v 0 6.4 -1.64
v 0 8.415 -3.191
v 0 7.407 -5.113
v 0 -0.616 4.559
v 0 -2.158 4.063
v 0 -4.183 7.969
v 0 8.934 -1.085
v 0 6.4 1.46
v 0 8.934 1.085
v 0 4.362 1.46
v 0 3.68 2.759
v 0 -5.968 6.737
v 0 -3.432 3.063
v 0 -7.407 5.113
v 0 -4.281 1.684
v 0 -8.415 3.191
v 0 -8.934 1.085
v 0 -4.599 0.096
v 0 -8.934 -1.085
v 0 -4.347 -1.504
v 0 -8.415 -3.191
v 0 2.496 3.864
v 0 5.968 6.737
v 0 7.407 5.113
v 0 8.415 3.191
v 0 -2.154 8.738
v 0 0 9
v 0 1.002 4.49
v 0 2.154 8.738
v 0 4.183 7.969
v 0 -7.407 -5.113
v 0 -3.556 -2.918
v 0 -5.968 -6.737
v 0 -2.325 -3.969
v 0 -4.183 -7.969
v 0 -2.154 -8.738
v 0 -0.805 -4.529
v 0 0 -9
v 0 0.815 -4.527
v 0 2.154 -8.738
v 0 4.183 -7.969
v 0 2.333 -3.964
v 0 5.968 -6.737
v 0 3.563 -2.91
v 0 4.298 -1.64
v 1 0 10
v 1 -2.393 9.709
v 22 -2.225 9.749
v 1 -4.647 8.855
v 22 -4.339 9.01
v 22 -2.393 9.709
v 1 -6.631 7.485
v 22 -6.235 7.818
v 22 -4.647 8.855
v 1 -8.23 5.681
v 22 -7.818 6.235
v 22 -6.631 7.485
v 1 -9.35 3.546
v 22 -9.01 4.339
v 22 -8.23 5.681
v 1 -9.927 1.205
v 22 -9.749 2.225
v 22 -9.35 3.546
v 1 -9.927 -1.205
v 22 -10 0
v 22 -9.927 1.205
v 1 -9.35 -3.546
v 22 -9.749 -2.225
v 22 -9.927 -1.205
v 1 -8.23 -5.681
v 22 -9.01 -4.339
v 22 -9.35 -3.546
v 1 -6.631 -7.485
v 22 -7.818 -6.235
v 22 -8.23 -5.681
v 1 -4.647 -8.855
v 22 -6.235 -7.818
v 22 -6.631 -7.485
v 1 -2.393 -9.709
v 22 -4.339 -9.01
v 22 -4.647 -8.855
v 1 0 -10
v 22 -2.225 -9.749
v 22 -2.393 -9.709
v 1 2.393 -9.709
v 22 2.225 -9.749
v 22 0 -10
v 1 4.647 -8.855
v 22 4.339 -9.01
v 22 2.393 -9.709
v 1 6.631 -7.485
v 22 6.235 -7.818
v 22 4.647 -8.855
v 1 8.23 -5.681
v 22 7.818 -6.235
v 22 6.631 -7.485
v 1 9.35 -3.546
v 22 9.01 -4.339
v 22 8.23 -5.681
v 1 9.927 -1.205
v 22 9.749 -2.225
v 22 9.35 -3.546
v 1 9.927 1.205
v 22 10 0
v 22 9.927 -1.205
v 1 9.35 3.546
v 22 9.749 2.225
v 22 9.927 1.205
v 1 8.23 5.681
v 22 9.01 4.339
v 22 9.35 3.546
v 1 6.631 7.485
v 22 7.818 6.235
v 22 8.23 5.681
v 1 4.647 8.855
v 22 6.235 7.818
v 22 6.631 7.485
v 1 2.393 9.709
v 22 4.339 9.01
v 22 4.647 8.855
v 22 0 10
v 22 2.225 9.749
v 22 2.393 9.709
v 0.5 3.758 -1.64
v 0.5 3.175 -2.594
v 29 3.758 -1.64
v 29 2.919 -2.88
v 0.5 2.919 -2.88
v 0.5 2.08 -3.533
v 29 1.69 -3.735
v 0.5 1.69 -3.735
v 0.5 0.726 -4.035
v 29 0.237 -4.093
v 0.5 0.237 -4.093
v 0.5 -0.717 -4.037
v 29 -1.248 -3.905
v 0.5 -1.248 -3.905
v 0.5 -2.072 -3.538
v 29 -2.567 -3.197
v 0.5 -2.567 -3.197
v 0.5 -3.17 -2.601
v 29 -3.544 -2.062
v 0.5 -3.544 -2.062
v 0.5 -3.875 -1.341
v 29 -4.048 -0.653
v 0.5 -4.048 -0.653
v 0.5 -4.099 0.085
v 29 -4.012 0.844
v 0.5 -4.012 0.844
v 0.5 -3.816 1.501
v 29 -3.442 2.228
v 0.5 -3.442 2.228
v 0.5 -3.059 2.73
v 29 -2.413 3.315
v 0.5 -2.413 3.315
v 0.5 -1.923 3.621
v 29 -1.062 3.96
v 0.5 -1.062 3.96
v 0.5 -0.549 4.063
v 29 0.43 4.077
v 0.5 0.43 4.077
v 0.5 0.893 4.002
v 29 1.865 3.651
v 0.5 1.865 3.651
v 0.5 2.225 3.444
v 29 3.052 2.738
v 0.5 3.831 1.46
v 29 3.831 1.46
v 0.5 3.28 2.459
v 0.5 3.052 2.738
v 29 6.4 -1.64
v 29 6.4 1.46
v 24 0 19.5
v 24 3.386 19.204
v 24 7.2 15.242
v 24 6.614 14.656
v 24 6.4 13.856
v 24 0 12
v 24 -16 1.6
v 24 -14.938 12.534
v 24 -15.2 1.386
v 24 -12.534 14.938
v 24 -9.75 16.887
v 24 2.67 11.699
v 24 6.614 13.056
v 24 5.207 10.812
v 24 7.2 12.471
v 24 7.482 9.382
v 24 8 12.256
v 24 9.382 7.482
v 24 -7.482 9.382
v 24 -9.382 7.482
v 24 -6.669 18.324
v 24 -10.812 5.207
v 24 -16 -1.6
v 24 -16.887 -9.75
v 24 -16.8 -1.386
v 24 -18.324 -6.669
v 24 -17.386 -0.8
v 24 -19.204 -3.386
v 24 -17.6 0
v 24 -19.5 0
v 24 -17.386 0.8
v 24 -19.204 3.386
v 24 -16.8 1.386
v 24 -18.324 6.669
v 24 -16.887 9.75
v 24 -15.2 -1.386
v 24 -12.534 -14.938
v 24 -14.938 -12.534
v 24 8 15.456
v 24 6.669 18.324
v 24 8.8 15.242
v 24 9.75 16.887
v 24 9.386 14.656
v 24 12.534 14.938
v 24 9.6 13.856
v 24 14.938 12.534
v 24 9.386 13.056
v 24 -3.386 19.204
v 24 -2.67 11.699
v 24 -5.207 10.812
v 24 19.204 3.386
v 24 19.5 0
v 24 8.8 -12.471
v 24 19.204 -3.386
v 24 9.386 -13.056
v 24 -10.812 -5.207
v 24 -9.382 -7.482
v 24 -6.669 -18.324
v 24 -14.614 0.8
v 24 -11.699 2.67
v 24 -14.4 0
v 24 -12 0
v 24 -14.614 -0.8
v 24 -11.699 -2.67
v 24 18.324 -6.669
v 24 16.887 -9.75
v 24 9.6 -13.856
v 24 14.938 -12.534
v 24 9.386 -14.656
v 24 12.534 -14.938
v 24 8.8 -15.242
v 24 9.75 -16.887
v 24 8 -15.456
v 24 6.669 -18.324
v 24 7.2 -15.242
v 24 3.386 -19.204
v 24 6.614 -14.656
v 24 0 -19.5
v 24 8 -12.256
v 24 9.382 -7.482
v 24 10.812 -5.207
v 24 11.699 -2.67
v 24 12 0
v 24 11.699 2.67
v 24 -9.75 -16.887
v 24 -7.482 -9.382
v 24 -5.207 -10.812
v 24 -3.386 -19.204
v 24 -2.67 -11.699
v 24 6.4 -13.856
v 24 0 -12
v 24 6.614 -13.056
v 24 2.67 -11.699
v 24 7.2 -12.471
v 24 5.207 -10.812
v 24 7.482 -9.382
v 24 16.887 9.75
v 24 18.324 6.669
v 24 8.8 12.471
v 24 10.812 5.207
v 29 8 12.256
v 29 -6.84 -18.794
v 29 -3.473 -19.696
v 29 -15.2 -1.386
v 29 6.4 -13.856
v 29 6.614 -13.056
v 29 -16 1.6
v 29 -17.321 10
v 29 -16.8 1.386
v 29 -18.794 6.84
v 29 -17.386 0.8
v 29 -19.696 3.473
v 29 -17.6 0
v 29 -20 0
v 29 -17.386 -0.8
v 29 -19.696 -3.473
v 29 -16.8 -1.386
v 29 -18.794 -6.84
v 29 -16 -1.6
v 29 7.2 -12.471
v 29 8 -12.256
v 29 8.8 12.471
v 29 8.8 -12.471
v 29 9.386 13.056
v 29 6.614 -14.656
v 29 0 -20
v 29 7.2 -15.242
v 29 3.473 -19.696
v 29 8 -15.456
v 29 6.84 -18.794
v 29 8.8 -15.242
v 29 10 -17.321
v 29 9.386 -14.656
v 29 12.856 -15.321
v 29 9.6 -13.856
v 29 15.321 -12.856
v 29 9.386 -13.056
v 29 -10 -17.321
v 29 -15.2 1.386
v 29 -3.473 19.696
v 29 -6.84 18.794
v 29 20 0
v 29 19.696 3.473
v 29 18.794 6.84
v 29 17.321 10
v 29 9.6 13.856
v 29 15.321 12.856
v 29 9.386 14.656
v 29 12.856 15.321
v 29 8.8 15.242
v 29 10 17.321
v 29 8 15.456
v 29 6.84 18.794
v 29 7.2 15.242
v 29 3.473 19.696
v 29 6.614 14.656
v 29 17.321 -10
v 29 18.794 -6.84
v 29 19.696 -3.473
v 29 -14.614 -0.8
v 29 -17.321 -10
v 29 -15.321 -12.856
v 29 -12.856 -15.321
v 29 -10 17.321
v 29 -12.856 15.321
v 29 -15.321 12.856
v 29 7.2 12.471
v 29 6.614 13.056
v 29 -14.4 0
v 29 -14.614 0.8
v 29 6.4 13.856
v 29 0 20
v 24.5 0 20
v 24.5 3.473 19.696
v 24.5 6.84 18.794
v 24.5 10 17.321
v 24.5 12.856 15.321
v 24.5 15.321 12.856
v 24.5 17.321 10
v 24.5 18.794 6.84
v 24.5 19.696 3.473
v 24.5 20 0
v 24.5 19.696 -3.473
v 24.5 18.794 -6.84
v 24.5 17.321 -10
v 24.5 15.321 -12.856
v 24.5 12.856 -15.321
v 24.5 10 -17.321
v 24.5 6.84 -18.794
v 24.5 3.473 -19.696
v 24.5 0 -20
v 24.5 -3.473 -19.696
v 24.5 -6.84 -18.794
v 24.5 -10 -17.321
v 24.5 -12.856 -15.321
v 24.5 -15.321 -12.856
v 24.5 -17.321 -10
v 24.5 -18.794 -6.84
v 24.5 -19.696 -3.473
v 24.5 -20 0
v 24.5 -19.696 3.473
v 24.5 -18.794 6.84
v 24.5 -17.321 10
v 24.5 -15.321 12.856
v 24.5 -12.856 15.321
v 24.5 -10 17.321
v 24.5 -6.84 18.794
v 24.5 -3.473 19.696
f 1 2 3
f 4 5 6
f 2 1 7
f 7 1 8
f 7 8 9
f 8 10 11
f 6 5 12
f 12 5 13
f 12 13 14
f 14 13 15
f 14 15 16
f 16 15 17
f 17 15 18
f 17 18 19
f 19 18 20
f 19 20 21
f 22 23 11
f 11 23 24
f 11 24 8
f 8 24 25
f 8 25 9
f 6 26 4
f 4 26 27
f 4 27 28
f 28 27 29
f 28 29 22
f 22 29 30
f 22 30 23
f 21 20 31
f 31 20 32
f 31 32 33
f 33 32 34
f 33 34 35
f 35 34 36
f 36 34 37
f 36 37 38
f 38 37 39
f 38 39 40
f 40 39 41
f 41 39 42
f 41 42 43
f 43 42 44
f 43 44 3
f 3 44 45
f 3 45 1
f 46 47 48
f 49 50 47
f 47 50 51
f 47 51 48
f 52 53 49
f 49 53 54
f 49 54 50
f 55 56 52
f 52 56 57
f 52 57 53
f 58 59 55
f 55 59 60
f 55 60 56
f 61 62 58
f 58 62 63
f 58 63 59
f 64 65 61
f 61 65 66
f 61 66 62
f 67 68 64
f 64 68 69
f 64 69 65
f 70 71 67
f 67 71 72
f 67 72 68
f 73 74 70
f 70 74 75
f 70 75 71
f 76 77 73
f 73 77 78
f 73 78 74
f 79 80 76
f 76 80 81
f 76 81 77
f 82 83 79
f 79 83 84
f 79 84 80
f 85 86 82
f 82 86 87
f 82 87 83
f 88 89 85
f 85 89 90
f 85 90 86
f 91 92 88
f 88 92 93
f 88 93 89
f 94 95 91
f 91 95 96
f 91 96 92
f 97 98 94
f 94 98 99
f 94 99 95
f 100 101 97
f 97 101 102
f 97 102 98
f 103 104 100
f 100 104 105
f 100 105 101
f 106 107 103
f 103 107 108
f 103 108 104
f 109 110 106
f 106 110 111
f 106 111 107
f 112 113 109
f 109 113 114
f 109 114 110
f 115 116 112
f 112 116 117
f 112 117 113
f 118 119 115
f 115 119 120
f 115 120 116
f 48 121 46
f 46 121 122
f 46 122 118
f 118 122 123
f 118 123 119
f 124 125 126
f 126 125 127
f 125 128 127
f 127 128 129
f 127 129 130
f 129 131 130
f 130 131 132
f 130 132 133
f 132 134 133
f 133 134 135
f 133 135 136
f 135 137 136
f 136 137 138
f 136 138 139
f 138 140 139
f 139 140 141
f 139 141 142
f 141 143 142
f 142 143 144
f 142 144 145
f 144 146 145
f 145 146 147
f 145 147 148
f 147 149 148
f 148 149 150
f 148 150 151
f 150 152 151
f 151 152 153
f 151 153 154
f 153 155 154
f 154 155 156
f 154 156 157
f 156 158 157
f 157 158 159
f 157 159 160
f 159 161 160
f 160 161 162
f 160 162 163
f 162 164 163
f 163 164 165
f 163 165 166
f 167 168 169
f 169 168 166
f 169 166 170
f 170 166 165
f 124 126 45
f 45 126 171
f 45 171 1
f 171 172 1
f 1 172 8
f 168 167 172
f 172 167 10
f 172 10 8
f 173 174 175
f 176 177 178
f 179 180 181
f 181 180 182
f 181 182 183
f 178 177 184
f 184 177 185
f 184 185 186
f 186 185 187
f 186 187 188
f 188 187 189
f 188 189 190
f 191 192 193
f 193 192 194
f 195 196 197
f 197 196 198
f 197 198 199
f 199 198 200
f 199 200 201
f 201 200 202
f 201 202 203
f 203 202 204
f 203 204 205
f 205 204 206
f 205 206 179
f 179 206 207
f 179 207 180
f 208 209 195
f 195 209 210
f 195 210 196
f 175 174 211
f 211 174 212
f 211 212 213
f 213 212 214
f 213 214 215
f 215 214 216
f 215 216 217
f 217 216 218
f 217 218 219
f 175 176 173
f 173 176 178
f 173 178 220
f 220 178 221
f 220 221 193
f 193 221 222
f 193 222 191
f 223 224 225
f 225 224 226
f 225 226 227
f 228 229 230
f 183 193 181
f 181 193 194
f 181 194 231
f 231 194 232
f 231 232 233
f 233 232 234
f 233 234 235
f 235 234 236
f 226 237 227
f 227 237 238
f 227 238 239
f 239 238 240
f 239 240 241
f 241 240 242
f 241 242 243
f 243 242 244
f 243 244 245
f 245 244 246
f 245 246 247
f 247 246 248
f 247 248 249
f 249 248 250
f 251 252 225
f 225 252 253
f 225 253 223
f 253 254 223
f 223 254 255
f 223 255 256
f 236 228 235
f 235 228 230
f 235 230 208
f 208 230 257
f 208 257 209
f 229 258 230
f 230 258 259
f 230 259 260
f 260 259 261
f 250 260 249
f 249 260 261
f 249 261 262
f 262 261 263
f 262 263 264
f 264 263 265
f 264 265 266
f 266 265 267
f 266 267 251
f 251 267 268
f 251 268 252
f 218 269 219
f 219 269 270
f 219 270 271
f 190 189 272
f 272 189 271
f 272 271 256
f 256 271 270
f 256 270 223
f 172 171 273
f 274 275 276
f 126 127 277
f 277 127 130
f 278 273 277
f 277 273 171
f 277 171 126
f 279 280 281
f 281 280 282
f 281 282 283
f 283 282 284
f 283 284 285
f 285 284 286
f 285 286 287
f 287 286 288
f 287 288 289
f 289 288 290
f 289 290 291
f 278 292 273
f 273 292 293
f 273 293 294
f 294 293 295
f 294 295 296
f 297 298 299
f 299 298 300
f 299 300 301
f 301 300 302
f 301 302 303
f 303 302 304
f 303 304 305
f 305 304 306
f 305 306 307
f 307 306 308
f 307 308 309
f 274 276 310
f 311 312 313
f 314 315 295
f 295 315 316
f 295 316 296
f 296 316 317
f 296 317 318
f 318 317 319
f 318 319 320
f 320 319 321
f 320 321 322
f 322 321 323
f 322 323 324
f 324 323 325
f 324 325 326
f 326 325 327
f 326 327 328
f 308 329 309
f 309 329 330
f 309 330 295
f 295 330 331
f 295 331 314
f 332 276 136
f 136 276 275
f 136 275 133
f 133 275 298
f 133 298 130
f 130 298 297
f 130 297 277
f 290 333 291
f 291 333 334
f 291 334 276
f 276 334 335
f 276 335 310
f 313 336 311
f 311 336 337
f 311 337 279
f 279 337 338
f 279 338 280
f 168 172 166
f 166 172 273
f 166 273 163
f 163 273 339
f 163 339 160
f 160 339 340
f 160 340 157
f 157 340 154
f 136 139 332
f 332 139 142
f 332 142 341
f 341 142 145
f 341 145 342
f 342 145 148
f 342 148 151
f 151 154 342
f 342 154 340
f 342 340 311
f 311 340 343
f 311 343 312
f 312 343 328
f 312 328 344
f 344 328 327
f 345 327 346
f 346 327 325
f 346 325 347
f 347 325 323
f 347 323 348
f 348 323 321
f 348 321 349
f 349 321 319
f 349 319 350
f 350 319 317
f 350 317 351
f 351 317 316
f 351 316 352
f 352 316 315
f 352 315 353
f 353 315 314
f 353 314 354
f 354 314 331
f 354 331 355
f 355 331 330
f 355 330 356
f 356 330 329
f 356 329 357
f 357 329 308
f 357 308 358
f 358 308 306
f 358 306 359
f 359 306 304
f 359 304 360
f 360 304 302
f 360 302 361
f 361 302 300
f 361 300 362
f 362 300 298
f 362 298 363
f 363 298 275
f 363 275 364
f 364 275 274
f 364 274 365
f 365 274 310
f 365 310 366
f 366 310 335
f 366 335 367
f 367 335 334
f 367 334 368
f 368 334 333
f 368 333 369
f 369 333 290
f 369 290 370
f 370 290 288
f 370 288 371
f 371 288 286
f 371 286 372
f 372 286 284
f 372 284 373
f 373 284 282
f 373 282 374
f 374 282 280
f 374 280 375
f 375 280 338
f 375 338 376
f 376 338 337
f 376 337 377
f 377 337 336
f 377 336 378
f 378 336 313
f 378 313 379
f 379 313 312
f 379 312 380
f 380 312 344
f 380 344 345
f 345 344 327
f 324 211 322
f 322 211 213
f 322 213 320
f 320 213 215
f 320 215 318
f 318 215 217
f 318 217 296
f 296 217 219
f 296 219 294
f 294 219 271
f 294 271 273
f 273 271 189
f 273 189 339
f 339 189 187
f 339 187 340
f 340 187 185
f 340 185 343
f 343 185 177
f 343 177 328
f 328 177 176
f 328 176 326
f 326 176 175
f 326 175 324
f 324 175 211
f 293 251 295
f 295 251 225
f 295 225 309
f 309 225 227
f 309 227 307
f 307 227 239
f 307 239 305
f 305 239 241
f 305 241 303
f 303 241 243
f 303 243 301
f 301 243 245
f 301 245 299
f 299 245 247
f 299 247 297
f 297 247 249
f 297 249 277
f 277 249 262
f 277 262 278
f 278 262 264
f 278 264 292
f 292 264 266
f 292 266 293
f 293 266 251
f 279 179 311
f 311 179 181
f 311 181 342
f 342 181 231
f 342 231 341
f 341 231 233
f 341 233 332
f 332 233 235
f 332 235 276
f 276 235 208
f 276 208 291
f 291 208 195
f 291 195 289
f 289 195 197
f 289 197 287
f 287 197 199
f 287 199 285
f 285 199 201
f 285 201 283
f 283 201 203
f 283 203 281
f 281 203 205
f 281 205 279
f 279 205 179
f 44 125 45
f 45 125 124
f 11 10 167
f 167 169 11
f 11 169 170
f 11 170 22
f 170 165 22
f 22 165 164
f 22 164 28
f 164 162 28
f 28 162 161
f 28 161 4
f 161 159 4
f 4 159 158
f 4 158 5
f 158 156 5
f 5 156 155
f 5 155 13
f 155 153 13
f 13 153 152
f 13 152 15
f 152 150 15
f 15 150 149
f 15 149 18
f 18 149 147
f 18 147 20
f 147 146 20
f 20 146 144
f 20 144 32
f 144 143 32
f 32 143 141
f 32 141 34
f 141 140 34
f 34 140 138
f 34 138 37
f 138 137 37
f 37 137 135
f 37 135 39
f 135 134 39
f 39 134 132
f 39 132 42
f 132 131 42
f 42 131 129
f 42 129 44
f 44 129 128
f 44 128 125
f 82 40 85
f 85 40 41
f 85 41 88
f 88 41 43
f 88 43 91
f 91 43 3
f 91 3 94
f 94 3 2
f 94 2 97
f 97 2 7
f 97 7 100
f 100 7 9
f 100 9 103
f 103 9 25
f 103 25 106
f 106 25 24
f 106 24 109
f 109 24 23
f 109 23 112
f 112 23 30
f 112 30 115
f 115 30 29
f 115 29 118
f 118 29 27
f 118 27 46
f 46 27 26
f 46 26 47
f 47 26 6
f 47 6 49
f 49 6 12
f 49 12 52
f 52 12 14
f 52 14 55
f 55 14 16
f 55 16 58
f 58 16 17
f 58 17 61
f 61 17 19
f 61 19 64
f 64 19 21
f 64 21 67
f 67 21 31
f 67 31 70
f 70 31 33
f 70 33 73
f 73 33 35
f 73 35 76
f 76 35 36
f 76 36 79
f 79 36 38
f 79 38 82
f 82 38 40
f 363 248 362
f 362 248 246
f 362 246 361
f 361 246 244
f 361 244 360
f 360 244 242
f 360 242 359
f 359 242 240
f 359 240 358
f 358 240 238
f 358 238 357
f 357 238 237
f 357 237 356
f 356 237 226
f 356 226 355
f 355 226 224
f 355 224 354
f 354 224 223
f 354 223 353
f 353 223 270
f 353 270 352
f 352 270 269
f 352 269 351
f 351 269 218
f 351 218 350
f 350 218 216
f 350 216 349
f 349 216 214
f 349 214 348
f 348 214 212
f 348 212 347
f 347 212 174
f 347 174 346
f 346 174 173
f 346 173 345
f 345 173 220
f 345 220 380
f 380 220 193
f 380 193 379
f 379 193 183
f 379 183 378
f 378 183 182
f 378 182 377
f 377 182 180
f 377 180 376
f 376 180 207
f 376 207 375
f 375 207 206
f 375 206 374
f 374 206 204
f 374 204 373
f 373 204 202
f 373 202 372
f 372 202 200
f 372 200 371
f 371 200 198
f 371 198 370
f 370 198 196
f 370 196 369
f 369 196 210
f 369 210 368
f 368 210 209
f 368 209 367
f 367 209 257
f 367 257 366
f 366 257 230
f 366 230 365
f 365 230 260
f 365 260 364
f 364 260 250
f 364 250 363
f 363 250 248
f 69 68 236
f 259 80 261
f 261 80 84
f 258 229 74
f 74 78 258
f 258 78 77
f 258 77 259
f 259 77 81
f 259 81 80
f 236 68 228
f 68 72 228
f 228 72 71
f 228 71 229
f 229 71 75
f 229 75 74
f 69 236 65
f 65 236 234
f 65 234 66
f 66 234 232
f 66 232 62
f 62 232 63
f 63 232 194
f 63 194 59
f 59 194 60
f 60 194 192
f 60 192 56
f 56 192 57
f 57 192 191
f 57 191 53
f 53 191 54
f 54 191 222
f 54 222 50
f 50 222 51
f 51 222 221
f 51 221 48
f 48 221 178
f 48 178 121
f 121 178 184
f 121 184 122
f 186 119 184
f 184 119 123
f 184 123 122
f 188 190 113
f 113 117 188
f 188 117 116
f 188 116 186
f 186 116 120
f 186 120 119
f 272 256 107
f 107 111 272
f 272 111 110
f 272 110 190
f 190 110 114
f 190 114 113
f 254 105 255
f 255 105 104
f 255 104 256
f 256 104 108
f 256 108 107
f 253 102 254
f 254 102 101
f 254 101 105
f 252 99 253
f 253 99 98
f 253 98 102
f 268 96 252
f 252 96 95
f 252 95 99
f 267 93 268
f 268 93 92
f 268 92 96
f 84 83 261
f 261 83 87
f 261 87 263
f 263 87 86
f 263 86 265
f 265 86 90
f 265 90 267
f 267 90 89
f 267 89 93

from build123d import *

# Parameters (mm, degrees)
SKETCH_1_R          = 10
EXTRUDE_1_DEPTH     = 24
SKETCH_2_R          = 20
SKETCH_2_R_2        = 1.6
EXTRUDE_2_DEPTH     = 5
CUT_EXTRUDE_1_REACH = 42.509
CHAMFER_1_SIZE      = 0.5
CHAMFER_2_SIZE      = 1
CHAMFER_3_SIZE      = 0.5
CHAMFER_4_SIZE      = 2


with BuildPart() as part:
    # 草图1 → 凸台-拉伸1 (new body)
    with BuildSketch(Plane(origin=(0, 0, 0), x_dir=(0, 0, -1), z_dir=(1, 0, 0))):
        Circle(SKETCH_1_R)
        with BuildLine():
            Line((-1.46, 6.008811728), (-1.46, 6.4))
            Line((-1.46, 6.4), (1.64, 6.4))
            Line((1.64, 6.4), (1.64, 6.008811728))
            Line((1.64, 6.008811728), (1.64, 3.75771207))
            ThreePointArc((1.64, 3.75771207), (-0.097219285, -4.098847205), (-1.46, 3.831240008))
            Line((-1.46, 3.831240008), (-1.46, 6.008811728))
        make_face(mode=Mode.SUBTRACT)
    extrude(amount=EXTRUDE_1_DEPTH)

    # 草图2 → 凸台-拉伸2 (add)
    with BuildSketch(Plane(origin=(24, 0, 0), x_dir=(0, 0, -1), z_dir=(1, 0, 0))):
        Circle(SKETCH_2_R)
        with Locations((-13.856406461, 8)):
            Circle(SKETCH_2_R_2, mode=Mode.SUBTRACT)
        with Locations((13.856406461, 8)):
            Circle(SKETCH_2_R_2, mode=Mode.SUBTRACT)
        with Locations((0, -16)):
            Circle(SKETCH_2_R_2, mode=Mode.SUBTRACT)
    extrude(amount=EXTRUDE_2_DEPTH)

    # 草图5 → 切除-拉伸1 (cut, up to next)
    with BuildSketch(Plane(origin=(29, 0, 0), x_dir=(0, 0, -1), z_dir=(1, 0, 0)), mode=Mode.PRIVATE) as cut_extrude_1_sk1:
        with BuildLine():
            Line((-1.46, 6.4), (-1.46, 3.831240008))
            ThreePointArc((-1.46, 3.831240008), (-0.097219285, -4.098847205), (1.64, 3.75771207))
            Line((1.64, 3.75771207), (1.64, 6.4))
            Line((1.64, 6.4), (-1.46, 6.4))
        make_face()
    cut_extrude_1_tool1 = extrude(cut_extrude_1_sk1.sketch, amount=-CUT_EXTRUDE_1_REACH, mode=Mode.PRIVATE) & part.part
    add(cut_extrude_1_tool1.solids().sort_by_distance((29, 0.642064, -0.012064))[0], mode=Mode.SUBTRACT)

    # 倒角1
    chamfer_1_edges = [part.edges().sort_by_distance(p)[0] for p in [
        (0, -4.098847205, 0.097219285),
    ]]
    chamfer(chamfer_1_edges, length=CHAMFER_1_SIZE)

    # 倒角2
    chamfer_2_edges = [part.edges().sort_by_distance(p)[0] for p in [
        (0, 0, 10),
    ]]
    chamfer(chamfer_2_edges, length=CHAMFER_2_SIZE)

    # 倒角3
    chamfer_3_edges = [part.edges().sort_by_distance(p)[0] for p in [
        (24, 0, 20),
    ]]
    chamfer(chamfer_3_edges, length=CHAMFER_3_SIZE)

    # 倒角4
    chamfer_4_edges = [part.edges().sort_by_distance(p)[0] for p in [
        (24, 0, 10),
    ]]
    chamfer(chamfer_4_edges, length=CHAMFER_4_SIZE)


solid = part.part
